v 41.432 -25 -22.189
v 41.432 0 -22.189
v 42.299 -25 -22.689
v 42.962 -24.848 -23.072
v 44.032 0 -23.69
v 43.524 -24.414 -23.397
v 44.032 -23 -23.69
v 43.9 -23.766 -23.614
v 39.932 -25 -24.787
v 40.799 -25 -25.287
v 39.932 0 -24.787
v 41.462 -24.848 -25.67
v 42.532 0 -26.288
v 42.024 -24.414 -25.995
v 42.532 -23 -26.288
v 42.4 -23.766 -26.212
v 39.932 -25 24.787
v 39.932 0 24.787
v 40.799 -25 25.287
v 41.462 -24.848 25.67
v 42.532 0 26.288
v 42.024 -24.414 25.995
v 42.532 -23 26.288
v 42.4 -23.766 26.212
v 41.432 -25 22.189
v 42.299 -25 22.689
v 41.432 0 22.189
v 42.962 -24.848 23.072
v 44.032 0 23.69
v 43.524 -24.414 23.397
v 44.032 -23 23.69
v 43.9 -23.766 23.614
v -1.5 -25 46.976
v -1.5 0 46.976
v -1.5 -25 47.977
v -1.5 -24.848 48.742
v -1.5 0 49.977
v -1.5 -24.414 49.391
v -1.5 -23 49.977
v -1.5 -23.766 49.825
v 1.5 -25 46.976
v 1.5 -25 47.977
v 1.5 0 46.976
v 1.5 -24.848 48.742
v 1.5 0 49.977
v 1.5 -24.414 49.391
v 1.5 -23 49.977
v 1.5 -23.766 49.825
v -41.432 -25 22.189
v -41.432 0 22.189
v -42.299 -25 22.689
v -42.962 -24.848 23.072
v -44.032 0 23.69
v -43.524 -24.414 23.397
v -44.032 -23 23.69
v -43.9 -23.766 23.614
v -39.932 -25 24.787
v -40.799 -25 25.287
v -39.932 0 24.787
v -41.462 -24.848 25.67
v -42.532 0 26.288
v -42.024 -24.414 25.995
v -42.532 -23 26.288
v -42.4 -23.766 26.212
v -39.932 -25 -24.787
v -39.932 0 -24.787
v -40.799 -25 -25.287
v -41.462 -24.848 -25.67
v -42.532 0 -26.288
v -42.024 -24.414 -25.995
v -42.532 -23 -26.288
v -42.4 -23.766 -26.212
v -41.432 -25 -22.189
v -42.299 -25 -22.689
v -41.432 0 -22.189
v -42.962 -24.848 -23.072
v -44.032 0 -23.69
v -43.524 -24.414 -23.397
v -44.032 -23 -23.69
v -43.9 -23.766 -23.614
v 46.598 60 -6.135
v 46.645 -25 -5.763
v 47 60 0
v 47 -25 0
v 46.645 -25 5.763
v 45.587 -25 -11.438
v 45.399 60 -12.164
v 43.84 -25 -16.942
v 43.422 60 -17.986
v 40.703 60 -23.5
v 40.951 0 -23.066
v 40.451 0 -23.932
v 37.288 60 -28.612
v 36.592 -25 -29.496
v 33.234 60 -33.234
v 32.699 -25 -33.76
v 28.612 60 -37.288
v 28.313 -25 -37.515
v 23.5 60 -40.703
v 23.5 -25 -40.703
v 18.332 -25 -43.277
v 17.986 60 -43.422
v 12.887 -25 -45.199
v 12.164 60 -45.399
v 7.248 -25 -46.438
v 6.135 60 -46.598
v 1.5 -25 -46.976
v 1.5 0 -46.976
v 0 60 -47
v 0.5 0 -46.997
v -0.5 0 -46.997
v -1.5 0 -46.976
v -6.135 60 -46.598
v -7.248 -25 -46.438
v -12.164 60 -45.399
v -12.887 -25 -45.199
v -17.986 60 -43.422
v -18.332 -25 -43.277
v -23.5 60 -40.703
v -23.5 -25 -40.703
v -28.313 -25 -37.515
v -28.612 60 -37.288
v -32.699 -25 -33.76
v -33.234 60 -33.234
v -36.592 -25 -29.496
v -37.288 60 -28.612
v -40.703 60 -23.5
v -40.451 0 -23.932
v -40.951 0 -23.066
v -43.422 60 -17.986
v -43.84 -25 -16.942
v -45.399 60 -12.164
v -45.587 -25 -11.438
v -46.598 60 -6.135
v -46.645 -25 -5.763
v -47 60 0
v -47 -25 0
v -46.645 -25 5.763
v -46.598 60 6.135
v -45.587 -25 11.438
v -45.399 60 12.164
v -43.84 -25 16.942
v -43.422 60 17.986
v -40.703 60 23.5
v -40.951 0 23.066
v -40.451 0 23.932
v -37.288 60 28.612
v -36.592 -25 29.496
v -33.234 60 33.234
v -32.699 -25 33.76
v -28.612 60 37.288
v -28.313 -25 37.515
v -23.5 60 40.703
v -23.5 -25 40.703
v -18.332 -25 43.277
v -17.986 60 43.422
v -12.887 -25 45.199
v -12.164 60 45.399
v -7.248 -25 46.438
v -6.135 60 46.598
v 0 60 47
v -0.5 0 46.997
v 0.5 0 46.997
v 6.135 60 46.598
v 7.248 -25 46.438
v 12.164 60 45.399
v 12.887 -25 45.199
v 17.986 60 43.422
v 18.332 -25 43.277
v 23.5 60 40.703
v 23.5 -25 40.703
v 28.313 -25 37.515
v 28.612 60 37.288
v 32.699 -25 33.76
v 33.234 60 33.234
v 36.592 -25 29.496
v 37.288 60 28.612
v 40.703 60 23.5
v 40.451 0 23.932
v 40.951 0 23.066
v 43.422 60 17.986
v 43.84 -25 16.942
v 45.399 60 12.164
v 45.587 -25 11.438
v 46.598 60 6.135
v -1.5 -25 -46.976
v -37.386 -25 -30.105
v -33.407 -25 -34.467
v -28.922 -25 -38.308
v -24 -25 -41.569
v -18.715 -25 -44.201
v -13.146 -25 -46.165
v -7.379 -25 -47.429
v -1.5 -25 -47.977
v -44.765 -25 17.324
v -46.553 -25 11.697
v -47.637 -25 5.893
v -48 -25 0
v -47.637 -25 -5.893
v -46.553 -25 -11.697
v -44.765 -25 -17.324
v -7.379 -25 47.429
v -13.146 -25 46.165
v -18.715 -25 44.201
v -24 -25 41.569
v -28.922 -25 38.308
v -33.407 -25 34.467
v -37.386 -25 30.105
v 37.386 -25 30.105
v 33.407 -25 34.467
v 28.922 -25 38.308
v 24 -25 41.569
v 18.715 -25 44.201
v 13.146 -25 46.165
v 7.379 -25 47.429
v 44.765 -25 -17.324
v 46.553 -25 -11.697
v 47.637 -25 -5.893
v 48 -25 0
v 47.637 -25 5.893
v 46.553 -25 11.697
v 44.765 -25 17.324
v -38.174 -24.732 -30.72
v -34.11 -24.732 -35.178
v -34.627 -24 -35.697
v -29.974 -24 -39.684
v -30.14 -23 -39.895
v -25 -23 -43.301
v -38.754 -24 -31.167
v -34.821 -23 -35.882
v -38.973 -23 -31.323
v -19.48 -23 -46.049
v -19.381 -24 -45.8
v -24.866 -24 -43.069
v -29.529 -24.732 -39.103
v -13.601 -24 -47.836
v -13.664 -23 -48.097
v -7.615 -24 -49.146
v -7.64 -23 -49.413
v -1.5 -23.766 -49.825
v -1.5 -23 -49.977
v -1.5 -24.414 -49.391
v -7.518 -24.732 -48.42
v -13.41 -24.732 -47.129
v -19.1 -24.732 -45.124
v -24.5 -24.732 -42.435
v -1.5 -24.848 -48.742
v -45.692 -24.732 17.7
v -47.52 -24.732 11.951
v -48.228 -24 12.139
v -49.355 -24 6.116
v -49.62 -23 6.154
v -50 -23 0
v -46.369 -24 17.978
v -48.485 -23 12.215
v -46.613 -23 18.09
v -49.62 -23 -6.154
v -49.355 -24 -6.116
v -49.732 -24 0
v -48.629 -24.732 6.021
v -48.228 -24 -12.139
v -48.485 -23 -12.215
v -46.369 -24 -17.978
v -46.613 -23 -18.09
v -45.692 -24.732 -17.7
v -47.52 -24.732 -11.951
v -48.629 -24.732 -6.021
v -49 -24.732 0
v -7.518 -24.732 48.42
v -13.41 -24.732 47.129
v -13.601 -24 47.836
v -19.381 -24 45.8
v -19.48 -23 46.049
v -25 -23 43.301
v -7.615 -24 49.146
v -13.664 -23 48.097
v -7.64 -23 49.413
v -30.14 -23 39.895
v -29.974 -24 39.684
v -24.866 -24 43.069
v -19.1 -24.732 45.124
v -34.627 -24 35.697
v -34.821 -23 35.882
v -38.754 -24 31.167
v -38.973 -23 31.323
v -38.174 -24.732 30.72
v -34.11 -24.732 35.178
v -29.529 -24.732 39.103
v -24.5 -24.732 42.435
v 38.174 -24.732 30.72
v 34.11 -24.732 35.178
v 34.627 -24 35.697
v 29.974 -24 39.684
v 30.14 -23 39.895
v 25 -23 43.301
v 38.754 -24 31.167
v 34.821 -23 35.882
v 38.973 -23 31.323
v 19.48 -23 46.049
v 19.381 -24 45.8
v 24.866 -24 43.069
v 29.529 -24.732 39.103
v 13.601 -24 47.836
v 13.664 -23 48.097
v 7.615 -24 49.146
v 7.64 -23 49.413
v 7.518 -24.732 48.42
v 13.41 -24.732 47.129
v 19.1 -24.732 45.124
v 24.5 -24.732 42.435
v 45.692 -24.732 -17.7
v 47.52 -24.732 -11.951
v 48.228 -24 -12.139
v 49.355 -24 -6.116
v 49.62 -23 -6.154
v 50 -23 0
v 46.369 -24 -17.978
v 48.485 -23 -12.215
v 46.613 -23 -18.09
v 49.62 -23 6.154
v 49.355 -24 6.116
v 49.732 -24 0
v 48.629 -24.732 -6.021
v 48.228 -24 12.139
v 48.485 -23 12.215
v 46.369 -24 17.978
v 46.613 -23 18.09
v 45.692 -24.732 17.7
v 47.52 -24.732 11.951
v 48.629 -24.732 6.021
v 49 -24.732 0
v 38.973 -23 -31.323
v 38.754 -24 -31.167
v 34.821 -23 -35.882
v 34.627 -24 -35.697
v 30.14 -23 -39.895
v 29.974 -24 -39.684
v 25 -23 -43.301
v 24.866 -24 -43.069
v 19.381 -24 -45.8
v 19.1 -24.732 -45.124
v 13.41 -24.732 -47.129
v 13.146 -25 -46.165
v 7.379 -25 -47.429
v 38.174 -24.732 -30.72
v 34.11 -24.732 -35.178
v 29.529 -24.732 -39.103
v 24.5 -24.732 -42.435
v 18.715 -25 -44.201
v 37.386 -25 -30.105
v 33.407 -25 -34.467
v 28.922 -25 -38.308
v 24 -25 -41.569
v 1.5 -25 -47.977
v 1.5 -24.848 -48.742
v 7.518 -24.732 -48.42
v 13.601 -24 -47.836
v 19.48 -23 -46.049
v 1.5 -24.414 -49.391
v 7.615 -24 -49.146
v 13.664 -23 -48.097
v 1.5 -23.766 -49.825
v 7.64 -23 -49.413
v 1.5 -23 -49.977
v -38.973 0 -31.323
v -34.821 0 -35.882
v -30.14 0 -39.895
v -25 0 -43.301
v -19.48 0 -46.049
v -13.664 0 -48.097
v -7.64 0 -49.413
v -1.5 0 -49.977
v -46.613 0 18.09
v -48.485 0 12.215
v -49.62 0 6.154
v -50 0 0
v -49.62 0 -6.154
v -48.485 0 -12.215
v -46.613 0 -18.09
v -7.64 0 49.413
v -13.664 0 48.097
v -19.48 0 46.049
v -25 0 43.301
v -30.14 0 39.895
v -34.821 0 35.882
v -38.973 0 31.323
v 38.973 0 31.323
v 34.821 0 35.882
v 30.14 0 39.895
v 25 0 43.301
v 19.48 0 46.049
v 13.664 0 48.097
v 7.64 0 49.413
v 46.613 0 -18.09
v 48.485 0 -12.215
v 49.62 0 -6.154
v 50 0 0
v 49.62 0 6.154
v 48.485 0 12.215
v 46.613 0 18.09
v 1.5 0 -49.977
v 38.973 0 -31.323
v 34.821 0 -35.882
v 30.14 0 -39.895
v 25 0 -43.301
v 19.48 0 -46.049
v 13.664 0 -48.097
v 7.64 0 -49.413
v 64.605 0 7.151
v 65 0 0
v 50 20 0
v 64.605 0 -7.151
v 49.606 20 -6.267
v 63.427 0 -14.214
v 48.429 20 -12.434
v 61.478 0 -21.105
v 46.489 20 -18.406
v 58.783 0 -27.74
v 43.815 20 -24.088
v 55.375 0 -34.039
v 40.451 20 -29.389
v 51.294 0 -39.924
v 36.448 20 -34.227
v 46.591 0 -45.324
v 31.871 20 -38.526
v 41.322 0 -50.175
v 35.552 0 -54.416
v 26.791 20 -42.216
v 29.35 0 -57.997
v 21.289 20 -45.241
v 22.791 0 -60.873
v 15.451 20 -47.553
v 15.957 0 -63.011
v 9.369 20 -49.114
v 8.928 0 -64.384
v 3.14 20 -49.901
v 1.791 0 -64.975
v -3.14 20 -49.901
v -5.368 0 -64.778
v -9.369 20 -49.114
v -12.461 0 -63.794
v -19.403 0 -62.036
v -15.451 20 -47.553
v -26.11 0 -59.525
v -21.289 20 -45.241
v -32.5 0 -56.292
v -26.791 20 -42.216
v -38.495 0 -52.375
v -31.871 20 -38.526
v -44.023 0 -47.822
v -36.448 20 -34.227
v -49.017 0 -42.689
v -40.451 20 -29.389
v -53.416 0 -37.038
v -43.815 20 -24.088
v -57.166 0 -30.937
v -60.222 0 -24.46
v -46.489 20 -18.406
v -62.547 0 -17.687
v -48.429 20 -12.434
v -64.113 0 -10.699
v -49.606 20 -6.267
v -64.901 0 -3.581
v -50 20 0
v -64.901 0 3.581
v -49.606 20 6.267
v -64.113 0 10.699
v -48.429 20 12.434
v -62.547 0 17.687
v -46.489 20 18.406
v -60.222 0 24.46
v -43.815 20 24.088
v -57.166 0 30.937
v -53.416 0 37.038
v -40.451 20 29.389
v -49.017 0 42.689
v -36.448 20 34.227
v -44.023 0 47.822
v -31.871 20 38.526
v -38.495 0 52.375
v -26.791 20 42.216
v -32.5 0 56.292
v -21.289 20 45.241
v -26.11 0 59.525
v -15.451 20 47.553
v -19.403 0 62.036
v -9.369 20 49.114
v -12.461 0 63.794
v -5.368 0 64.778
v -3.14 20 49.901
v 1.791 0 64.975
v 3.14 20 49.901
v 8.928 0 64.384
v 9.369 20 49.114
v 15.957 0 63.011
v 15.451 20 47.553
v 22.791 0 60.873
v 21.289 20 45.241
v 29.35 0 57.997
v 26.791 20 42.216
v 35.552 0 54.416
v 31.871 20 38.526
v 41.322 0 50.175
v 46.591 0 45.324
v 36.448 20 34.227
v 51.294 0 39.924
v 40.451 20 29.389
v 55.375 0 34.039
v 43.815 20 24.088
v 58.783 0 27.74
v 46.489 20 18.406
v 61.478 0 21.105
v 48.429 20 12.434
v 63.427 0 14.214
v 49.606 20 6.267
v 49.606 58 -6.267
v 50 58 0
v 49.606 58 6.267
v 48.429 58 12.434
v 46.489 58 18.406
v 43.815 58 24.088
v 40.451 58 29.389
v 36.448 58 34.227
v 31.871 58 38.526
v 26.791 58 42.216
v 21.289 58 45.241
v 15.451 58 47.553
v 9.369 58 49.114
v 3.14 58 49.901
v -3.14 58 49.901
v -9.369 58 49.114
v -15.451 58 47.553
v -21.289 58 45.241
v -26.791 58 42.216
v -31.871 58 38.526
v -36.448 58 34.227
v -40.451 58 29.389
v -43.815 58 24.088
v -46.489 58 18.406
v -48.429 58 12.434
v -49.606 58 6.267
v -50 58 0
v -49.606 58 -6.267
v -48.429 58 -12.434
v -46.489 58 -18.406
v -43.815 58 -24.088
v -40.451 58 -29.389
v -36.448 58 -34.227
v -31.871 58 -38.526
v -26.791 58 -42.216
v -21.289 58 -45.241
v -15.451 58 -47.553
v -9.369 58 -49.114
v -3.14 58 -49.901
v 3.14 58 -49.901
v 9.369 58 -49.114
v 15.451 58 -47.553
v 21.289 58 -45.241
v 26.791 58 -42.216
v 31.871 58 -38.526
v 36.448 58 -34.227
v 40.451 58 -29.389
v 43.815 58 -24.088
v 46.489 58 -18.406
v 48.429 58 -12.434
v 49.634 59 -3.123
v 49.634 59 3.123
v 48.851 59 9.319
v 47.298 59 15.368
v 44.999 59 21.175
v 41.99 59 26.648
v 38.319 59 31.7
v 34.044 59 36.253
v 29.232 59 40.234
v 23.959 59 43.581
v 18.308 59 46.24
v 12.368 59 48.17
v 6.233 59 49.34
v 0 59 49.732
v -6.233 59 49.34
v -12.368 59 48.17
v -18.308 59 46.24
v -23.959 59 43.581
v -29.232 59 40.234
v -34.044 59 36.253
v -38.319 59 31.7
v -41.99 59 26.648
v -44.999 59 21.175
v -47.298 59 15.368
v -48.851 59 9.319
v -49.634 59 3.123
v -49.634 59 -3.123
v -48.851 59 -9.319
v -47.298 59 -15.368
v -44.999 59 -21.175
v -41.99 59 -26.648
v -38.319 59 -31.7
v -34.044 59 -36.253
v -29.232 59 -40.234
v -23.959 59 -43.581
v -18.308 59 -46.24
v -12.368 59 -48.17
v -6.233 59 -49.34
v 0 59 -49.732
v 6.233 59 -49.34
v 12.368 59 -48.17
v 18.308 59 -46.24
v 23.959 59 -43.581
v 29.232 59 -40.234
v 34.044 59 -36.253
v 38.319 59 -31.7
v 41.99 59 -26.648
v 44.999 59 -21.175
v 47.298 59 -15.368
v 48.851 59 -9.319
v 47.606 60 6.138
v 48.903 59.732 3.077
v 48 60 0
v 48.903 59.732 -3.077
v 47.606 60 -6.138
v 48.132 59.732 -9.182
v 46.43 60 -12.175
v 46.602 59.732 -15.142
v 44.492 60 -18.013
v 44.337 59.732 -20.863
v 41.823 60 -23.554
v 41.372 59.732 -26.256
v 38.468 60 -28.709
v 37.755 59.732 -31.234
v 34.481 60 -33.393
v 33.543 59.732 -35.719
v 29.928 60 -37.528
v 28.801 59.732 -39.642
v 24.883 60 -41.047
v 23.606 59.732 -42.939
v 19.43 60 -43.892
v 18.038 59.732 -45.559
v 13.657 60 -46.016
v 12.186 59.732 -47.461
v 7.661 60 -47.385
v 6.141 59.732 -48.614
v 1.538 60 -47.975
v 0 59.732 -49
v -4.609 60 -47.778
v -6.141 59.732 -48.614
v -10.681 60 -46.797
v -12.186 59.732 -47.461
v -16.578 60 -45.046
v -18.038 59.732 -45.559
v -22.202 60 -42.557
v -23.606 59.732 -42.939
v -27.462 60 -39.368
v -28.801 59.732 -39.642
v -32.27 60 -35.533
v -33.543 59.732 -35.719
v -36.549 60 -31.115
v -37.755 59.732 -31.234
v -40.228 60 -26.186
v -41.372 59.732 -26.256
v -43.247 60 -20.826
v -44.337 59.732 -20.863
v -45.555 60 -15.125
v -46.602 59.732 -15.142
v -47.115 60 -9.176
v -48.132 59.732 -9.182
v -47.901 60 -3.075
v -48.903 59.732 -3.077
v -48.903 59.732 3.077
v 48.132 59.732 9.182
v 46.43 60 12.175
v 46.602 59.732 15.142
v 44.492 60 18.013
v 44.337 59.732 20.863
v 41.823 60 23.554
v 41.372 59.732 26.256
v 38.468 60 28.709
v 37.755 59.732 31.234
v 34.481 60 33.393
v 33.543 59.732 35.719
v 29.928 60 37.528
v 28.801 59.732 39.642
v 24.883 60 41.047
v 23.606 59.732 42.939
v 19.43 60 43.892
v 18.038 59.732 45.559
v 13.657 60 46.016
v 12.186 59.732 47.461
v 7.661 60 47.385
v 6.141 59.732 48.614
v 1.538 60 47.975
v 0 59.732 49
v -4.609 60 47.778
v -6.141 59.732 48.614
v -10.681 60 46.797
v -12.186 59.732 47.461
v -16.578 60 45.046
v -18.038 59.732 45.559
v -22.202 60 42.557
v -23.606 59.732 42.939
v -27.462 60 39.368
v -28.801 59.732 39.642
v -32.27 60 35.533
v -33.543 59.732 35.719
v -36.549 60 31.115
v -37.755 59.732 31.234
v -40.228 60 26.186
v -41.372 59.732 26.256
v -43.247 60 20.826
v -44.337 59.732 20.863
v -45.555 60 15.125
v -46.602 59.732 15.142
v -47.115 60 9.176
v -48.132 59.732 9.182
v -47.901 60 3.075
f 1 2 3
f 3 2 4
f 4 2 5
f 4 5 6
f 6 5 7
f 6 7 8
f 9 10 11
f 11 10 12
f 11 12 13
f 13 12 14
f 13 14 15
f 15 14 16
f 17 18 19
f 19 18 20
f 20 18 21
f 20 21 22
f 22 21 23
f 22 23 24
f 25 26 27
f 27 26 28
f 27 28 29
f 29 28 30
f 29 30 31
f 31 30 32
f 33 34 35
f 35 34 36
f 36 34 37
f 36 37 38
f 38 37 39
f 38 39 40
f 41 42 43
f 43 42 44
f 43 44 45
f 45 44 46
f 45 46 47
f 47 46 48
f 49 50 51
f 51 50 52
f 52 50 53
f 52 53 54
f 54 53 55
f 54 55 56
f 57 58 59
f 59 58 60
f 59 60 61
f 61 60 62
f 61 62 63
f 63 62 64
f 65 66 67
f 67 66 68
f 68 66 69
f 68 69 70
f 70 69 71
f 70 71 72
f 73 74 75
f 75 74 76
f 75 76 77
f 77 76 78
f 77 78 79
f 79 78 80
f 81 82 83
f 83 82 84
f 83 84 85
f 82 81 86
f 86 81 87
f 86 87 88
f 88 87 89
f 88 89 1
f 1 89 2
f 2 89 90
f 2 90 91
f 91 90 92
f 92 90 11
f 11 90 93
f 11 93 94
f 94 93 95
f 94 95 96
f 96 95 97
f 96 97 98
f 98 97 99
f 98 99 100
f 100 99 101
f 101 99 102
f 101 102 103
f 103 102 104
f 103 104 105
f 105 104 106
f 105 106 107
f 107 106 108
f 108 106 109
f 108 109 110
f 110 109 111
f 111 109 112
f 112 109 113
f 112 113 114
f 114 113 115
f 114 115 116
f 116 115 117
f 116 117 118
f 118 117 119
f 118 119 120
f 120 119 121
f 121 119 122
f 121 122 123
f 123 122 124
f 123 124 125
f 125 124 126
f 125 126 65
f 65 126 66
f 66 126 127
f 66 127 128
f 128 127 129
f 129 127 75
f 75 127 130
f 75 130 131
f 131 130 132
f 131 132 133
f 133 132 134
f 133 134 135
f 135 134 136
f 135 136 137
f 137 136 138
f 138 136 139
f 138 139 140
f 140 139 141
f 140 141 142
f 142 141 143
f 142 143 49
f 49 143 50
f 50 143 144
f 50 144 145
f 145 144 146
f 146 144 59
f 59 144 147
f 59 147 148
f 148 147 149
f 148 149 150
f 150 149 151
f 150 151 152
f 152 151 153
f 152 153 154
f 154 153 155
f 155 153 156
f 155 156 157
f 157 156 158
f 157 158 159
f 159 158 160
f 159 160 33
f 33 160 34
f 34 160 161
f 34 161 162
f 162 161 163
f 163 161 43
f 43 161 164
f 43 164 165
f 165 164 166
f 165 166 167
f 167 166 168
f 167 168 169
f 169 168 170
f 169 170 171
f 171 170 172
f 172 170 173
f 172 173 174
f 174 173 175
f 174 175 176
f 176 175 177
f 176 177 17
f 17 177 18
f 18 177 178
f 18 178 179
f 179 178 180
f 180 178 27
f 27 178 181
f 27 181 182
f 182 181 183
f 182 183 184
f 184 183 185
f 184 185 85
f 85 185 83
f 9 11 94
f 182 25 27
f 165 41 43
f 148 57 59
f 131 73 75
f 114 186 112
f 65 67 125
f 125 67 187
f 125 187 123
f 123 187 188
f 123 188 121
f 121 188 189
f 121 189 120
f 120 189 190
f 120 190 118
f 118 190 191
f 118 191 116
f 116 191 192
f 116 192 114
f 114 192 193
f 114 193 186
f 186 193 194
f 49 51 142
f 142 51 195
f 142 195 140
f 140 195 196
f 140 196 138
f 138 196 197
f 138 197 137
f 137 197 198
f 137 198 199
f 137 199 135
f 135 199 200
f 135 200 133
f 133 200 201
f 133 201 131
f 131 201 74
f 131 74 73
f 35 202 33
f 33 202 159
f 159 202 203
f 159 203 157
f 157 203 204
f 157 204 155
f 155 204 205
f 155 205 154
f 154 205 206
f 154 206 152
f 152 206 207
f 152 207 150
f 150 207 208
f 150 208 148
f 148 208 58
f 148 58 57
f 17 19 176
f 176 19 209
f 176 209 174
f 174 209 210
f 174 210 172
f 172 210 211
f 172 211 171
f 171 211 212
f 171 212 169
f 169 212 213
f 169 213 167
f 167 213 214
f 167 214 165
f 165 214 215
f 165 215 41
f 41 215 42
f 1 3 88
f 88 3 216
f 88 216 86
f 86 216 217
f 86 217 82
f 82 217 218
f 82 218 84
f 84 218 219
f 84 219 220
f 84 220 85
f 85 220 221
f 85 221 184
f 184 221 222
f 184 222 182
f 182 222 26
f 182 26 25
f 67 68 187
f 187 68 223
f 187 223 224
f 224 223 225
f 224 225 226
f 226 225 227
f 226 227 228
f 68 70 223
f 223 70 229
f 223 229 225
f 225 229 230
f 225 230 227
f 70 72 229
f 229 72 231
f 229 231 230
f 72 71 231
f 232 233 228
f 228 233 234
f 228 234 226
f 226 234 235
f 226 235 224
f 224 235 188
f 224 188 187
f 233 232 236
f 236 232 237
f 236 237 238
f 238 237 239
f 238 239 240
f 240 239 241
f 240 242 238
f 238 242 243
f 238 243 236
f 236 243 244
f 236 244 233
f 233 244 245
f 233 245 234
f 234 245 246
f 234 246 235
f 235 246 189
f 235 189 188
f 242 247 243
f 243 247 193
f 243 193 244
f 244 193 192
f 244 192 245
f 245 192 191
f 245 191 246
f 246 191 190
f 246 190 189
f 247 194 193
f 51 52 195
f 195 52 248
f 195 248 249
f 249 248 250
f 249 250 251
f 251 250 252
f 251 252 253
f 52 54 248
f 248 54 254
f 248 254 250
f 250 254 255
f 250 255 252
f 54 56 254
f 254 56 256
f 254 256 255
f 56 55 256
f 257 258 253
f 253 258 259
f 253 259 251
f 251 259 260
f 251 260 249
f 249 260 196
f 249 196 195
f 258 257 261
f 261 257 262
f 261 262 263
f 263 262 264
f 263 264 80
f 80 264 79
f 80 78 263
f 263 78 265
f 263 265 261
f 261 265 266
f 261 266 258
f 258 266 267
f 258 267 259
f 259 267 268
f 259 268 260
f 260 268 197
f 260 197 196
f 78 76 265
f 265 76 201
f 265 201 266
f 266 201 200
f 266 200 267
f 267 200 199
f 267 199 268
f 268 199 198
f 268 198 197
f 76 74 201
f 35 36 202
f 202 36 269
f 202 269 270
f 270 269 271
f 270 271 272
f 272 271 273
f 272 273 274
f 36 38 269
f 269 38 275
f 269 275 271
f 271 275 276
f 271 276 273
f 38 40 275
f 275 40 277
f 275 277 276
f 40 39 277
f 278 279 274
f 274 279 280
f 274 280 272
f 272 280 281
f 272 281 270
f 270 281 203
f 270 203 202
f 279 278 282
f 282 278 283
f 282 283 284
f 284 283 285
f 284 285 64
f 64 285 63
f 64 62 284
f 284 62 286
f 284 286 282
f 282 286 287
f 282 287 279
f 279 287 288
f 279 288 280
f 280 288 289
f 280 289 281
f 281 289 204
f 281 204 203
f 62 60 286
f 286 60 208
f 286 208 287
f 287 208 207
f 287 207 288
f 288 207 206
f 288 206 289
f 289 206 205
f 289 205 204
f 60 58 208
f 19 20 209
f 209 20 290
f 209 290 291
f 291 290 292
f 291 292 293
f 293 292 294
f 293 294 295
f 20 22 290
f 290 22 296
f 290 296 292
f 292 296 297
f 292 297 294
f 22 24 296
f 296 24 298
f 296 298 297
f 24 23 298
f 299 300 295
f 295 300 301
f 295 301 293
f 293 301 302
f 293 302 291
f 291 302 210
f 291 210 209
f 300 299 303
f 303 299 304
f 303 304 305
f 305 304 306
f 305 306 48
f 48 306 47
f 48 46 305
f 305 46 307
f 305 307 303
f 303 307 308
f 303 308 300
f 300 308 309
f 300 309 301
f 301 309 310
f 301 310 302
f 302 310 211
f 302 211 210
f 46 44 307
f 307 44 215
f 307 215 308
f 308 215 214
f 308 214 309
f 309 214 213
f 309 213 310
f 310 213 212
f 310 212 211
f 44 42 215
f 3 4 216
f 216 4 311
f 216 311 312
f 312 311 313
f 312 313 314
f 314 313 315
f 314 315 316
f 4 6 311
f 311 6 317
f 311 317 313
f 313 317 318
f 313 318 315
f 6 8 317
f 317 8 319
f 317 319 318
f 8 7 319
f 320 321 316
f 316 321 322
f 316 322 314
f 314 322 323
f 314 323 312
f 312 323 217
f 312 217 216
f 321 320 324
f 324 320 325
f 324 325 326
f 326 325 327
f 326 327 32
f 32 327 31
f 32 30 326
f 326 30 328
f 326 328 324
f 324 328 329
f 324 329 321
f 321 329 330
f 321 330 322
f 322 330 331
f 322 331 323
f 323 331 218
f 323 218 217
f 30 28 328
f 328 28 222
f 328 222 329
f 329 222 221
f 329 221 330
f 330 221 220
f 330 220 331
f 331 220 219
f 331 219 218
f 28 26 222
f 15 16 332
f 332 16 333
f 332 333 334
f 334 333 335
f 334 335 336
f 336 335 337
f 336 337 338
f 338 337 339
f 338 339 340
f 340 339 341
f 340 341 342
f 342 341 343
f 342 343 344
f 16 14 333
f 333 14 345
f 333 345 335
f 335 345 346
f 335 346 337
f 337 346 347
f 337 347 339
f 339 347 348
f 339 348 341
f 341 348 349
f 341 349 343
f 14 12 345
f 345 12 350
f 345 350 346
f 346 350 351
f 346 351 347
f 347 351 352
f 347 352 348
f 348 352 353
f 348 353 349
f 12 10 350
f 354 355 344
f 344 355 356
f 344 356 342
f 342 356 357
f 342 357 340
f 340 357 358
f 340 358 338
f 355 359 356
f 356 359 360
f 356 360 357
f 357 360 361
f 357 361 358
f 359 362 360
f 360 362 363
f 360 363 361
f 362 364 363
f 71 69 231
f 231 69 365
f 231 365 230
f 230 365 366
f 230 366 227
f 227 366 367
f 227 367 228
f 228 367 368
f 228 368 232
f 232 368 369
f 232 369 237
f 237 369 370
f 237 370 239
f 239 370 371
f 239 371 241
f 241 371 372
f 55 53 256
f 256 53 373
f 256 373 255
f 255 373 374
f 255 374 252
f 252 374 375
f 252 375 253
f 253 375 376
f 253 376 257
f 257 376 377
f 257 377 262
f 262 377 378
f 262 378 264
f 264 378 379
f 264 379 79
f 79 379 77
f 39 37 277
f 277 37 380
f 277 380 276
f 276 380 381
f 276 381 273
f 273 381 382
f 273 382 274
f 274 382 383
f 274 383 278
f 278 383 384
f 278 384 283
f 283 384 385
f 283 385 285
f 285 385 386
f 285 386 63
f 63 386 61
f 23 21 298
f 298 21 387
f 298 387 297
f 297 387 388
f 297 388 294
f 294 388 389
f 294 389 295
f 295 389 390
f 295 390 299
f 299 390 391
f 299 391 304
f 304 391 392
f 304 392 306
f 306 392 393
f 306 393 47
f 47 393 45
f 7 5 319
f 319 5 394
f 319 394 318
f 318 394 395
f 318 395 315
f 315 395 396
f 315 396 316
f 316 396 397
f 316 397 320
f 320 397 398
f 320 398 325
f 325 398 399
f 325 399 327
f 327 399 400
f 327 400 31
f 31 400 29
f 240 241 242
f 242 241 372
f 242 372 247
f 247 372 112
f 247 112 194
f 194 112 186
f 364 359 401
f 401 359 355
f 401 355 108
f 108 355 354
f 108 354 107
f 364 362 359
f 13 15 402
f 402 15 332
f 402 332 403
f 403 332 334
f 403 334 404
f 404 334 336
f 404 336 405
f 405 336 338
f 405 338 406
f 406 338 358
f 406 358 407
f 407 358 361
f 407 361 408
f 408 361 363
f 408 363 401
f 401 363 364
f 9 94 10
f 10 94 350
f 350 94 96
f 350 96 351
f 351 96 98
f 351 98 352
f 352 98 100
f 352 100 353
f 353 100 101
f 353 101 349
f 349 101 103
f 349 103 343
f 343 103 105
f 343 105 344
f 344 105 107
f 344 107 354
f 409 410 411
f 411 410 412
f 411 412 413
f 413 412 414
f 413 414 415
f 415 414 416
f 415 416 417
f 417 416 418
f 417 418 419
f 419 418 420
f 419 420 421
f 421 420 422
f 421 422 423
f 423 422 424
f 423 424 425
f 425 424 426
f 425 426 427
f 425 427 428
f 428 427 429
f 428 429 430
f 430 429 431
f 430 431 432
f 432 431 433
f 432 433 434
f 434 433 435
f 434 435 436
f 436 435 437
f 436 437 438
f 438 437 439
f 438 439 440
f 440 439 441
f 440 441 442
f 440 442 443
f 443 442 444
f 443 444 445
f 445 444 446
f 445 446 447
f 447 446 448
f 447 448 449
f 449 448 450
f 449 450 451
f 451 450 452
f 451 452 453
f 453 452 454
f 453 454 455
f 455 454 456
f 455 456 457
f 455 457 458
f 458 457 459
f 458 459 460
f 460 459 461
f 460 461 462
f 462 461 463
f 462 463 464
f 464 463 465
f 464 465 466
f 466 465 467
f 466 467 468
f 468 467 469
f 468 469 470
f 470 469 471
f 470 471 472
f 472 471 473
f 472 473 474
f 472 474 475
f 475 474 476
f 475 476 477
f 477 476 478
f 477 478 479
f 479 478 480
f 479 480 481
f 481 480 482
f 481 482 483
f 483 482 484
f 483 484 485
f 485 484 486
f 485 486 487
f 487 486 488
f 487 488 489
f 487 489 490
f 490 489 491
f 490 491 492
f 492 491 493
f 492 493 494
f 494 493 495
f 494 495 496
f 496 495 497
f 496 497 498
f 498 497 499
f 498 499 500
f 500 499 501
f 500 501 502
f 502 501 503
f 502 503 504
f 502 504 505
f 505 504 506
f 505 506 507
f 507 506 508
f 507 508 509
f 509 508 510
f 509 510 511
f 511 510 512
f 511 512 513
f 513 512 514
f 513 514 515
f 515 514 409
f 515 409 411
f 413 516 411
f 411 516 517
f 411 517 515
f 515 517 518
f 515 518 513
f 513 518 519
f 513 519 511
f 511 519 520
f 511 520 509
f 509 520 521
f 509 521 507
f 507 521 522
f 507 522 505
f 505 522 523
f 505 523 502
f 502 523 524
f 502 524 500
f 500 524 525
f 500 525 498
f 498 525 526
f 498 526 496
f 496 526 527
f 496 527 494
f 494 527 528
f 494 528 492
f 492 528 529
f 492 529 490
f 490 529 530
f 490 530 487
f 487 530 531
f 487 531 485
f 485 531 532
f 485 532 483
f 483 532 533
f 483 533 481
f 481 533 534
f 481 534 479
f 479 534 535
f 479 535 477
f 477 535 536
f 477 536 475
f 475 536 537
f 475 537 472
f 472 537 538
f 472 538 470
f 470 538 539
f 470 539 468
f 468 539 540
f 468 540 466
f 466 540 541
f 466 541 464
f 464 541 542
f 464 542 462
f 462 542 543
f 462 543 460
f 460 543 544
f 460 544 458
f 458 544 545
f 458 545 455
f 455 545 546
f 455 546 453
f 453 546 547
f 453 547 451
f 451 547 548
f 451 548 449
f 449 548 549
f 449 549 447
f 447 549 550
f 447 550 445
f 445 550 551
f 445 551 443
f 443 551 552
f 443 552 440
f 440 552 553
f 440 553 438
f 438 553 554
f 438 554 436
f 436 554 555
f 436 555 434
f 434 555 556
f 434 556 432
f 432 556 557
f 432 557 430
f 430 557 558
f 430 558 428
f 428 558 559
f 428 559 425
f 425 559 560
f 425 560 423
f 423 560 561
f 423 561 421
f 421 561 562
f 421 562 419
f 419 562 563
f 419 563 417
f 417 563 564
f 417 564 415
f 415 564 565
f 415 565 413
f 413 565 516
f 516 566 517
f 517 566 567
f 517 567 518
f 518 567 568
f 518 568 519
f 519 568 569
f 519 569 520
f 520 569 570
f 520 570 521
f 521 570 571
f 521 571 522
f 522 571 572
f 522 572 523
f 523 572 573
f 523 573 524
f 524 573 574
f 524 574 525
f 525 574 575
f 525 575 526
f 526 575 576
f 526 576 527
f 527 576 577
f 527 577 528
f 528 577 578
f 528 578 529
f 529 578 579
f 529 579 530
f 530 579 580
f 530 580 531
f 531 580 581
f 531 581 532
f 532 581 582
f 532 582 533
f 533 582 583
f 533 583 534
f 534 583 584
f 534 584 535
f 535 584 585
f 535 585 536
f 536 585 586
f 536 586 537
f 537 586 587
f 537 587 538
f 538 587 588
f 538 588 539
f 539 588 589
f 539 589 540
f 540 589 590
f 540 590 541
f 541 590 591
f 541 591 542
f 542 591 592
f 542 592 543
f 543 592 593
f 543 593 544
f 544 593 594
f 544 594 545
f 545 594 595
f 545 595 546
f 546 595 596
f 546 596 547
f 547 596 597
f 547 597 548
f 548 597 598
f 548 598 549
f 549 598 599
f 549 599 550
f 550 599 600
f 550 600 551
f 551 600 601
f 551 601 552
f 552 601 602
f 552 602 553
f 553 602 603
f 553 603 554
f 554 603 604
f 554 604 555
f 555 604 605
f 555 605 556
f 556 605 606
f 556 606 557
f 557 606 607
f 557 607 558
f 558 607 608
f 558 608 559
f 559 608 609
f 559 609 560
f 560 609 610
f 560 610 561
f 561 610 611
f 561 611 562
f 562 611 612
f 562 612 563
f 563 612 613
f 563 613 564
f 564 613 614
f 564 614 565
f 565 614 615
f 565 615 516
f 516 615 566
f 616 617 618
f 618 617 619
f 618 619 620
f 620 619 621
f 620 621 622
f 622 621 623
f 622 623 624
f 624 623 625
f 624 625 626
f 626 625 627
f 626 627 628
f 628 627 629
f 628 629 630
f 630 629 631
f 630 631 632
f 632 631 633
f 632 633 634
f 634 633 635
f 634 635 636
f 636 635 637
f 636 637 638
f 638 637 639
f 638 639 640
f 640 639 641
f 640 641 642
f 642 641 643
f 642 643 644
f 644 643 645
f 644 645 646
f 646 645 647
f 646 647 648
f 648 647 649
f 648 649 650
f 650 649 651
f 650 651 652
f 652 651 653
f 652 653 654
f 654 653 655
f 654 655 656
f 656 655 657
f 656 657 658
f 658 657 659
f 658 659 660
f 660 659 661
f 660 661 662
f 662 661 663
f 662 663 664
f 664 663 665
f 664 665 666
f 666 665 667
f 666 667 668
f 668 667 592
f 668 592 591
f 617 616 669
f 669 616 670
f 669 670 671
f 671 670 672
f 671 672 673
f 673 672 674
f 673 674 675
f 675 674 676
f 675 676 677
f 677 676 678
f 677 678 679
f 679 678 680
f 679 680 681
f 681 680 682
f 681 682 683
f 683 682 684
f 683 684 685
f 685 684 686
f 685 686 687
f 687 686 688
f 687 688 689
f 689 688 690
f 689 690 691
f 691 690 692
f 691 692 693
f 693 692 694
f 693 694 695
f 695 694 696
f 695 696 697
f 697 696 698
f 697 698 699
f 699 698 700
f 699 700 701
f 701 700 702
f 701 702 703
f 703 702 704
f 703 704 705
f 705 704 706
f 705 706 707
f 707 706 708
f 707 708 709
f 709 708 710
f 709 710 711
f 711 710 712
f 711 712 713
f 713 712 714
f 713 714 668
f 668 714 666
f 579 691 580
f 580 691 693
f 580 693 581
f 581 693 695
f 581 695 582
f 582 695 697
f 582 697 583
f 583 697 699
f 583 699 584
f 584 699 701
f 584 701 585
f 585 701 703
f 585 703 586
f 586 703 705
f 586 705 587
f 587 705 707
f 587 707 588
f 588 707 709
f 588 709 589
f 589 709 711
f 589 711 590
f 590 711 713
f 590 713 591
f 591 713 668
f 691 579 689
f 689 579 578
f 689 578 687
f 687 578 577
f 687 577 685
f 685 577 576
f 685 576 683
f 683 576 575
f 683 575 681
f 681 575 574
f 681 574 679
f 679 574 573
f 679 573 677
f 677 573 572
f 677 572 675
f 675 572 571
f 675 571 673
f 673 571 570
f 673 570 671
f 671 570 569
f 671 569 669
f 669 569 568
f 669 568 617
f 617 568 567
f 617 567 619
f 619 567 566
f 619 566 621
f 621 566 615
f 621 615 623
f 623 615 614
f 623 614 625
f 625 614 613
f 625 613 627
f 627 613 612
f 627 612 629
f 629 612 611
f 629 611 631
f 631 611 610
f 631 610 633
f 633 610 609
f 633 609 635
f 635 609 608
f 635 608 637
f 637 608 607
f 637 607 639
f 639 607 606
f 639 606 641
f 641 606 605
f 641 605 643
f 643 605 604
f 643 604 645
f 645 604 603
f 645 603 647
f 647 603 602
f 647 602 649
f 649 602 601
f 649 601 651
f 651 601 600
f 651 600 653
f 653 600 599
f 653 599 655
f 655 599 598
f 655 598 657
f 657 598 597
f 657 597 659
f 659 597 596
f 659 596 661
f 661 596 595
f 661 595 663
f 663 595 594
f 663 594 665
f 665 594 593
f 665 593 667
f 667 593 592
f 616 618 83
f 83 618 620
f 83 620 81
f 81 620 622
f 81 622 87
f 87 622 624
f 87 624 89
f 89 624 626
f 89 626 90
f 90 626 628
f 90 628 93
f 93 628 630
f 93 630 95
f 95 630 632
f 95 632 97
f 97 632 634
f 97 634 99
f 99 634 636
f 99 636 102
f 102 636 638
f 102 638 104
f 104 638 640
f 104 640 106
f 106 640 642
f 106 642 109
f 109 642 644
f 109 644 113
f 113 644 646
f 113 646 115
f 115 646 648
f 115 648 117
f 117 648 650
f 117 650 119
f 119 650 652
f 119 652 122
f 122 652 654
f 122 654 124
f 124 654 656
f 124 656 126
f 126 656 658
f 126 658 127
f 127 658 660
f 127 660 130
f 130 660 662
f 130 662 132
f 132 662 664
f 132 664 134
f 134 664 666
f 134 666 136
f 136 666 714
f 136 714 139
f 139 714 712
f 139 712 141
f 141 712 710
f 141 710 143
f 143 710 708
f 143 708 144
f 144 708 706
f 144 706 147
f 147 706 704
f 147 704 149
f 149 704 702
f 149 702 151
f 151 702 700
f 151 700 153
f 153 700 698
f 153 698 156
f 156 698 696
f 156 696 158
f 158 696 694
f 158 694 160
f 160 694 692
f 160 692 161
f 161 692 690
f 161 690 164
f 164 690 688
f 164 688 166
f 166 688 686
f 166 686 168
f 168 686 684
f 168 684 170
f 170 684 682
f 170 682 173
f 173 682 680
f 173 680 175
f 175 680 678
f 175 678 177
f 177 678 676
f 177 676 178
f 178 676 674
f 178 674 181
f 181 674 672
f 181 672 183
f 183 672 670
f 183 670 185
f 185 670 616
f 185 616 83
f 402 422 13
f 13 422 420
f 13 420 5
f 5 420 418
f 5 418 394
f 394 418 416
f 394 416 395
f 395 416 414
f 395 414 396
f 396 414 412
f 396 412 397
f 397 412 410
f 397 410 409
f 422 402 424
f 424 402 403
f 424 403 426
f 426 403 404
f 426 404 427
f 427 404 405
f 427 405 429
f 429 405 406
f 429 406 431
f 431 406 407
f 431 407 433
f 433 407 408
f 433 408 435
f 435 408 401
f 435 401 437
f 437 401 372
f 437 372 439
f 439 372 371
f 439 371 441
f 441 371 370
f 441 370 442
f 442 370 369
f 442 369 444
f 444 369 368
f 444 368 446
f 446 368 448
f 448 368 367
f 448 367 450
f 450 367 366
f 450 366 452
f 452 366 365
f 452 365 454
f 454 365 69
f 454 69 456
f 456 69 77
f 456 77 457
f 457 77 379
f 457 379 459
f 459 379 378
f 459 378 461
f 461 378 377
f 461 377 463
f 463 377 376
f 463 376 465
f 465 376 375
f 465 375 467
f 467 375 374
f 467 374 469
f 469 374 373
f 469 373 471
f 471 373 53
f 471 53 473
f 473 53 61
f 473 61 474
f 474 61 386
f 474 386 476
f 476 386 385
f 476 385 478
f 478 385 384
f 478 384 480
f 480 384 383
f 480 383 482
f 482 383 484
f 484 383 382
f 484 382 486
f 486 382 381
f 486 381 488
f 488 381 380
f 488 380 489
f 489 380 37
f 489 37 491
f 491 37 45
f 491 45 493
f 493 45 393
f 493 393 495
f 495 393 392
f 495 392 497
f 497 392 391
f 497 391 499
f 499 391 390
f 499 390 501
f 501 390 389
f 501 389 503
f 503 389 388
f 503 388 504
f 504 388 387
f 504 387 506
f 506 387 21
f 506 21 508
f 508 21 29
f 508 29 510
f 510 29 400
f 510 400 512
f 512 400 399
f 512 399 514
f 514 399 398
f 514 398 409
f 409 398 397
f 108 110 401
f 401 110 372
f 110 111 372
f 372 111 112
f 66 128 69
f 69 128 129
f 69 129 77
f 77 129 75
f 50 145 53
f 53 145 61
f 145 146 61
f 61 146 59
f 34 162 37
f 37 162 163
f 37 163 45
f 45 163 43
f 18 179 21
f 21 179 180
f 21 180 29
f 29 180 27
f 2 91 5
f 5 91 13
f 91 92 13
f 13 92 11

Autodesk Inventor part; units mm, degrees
ref_plane "YZ Plane" through (0, 0, 0) normal (1, 0, 0) x (0, 1, 0)
ref_plane "XZ Plane" through (0, 0, 0) normal (0, 1, 0) x (-1, 0, 0)
ref_plane "XY Plane" through (0, 0, 0) normal (0, 0, 1) x (1, 0, 0)
sketch "Sketch1" plane through (0, 0, 0) normal (0, 0, 1) x (1, 0, 0)
  line L0 (-50, 0) -> (-47, 0)
  line L1 (-47, 0) -> (-47, -25)
  line L2 (-47, -25) -> (-48, -25)
  line L3 (-50, -23) -> (-50, 0)
  line L4 (-47, 20) -> (-50, 20)
  line L5 (-50, 20) -> (-50, 58)
  line L6 (-48, 60) -> (-47, 60)
  line L7 (-47, 60) -> (-47, 20)
  line L8 (-50, 0) -> (-65, 0)
  line L9 (-65, 0) -> (-50, 20)
  line L10 (-47, 20) -> (-47, 0)
  arc A0 (-48, 60) -> (-50, 58) centre (-48, 58) ccw
  arc A1 (-50, -23) -> (-48, -25) centre (-48, -23) ccw
  line L11 (0, -42.5799) -> (0, 77.5799) projected
  point P0 (0, 0)
  point P1 (-50, -25)
  point P2 (-50, 60)
  point P3 (-48.5, 0)
  dimension "d4" = 3
  dimension "d5" = 25
  dimension "d6" = 3
  dimension "d7" = 40
  dimension "d8" = 15
  dimension "d9" = 50
  dimension "d10" = 2
  dimension "d12" = 20
revolve "Revolution1" add sketch "Sketch1" angle 360 about axis through (0, -10, 0) along (0, 1, 0)
sketch "Sketch2" plane through (0, -25, 0) normal (0, -1, 0) x (1, 0, 0)
  line L0 (1.5, 42) -> (-1.5, 42)
  line L1 (-1.5, 42) -> (-1.5, 52)
  line L2 (-1.5, 52) -> (1.5, 52)
  line L3 (1.5, 52) -> (1.5, 42)
  circle A0 centre (0, 0) radius 47 projected
  line L4 (1.5, 42) -> (-1.5, 52) construction
  line L5 (-1.5, 42) -> (1.5, 52) construction
  point P0 (0, 47)
  dimension "d13" = 3
  dimension "d14" = 10
extrude "Extrusion1" cut sketch "Sketch2" against normal blind 25 contours L0 L1 A0 L3 | A0 L1 L2 L3 picked at (0.1667, 43.6658)
pattern_circular "Circular Pattern1" count 6 over 360 about axis through (0, -10, 0) along (0, 1, 0) of "Extrusion1"
properties part number "top-ventilation-tibe-adapter-100mmID-to-100mmID"
